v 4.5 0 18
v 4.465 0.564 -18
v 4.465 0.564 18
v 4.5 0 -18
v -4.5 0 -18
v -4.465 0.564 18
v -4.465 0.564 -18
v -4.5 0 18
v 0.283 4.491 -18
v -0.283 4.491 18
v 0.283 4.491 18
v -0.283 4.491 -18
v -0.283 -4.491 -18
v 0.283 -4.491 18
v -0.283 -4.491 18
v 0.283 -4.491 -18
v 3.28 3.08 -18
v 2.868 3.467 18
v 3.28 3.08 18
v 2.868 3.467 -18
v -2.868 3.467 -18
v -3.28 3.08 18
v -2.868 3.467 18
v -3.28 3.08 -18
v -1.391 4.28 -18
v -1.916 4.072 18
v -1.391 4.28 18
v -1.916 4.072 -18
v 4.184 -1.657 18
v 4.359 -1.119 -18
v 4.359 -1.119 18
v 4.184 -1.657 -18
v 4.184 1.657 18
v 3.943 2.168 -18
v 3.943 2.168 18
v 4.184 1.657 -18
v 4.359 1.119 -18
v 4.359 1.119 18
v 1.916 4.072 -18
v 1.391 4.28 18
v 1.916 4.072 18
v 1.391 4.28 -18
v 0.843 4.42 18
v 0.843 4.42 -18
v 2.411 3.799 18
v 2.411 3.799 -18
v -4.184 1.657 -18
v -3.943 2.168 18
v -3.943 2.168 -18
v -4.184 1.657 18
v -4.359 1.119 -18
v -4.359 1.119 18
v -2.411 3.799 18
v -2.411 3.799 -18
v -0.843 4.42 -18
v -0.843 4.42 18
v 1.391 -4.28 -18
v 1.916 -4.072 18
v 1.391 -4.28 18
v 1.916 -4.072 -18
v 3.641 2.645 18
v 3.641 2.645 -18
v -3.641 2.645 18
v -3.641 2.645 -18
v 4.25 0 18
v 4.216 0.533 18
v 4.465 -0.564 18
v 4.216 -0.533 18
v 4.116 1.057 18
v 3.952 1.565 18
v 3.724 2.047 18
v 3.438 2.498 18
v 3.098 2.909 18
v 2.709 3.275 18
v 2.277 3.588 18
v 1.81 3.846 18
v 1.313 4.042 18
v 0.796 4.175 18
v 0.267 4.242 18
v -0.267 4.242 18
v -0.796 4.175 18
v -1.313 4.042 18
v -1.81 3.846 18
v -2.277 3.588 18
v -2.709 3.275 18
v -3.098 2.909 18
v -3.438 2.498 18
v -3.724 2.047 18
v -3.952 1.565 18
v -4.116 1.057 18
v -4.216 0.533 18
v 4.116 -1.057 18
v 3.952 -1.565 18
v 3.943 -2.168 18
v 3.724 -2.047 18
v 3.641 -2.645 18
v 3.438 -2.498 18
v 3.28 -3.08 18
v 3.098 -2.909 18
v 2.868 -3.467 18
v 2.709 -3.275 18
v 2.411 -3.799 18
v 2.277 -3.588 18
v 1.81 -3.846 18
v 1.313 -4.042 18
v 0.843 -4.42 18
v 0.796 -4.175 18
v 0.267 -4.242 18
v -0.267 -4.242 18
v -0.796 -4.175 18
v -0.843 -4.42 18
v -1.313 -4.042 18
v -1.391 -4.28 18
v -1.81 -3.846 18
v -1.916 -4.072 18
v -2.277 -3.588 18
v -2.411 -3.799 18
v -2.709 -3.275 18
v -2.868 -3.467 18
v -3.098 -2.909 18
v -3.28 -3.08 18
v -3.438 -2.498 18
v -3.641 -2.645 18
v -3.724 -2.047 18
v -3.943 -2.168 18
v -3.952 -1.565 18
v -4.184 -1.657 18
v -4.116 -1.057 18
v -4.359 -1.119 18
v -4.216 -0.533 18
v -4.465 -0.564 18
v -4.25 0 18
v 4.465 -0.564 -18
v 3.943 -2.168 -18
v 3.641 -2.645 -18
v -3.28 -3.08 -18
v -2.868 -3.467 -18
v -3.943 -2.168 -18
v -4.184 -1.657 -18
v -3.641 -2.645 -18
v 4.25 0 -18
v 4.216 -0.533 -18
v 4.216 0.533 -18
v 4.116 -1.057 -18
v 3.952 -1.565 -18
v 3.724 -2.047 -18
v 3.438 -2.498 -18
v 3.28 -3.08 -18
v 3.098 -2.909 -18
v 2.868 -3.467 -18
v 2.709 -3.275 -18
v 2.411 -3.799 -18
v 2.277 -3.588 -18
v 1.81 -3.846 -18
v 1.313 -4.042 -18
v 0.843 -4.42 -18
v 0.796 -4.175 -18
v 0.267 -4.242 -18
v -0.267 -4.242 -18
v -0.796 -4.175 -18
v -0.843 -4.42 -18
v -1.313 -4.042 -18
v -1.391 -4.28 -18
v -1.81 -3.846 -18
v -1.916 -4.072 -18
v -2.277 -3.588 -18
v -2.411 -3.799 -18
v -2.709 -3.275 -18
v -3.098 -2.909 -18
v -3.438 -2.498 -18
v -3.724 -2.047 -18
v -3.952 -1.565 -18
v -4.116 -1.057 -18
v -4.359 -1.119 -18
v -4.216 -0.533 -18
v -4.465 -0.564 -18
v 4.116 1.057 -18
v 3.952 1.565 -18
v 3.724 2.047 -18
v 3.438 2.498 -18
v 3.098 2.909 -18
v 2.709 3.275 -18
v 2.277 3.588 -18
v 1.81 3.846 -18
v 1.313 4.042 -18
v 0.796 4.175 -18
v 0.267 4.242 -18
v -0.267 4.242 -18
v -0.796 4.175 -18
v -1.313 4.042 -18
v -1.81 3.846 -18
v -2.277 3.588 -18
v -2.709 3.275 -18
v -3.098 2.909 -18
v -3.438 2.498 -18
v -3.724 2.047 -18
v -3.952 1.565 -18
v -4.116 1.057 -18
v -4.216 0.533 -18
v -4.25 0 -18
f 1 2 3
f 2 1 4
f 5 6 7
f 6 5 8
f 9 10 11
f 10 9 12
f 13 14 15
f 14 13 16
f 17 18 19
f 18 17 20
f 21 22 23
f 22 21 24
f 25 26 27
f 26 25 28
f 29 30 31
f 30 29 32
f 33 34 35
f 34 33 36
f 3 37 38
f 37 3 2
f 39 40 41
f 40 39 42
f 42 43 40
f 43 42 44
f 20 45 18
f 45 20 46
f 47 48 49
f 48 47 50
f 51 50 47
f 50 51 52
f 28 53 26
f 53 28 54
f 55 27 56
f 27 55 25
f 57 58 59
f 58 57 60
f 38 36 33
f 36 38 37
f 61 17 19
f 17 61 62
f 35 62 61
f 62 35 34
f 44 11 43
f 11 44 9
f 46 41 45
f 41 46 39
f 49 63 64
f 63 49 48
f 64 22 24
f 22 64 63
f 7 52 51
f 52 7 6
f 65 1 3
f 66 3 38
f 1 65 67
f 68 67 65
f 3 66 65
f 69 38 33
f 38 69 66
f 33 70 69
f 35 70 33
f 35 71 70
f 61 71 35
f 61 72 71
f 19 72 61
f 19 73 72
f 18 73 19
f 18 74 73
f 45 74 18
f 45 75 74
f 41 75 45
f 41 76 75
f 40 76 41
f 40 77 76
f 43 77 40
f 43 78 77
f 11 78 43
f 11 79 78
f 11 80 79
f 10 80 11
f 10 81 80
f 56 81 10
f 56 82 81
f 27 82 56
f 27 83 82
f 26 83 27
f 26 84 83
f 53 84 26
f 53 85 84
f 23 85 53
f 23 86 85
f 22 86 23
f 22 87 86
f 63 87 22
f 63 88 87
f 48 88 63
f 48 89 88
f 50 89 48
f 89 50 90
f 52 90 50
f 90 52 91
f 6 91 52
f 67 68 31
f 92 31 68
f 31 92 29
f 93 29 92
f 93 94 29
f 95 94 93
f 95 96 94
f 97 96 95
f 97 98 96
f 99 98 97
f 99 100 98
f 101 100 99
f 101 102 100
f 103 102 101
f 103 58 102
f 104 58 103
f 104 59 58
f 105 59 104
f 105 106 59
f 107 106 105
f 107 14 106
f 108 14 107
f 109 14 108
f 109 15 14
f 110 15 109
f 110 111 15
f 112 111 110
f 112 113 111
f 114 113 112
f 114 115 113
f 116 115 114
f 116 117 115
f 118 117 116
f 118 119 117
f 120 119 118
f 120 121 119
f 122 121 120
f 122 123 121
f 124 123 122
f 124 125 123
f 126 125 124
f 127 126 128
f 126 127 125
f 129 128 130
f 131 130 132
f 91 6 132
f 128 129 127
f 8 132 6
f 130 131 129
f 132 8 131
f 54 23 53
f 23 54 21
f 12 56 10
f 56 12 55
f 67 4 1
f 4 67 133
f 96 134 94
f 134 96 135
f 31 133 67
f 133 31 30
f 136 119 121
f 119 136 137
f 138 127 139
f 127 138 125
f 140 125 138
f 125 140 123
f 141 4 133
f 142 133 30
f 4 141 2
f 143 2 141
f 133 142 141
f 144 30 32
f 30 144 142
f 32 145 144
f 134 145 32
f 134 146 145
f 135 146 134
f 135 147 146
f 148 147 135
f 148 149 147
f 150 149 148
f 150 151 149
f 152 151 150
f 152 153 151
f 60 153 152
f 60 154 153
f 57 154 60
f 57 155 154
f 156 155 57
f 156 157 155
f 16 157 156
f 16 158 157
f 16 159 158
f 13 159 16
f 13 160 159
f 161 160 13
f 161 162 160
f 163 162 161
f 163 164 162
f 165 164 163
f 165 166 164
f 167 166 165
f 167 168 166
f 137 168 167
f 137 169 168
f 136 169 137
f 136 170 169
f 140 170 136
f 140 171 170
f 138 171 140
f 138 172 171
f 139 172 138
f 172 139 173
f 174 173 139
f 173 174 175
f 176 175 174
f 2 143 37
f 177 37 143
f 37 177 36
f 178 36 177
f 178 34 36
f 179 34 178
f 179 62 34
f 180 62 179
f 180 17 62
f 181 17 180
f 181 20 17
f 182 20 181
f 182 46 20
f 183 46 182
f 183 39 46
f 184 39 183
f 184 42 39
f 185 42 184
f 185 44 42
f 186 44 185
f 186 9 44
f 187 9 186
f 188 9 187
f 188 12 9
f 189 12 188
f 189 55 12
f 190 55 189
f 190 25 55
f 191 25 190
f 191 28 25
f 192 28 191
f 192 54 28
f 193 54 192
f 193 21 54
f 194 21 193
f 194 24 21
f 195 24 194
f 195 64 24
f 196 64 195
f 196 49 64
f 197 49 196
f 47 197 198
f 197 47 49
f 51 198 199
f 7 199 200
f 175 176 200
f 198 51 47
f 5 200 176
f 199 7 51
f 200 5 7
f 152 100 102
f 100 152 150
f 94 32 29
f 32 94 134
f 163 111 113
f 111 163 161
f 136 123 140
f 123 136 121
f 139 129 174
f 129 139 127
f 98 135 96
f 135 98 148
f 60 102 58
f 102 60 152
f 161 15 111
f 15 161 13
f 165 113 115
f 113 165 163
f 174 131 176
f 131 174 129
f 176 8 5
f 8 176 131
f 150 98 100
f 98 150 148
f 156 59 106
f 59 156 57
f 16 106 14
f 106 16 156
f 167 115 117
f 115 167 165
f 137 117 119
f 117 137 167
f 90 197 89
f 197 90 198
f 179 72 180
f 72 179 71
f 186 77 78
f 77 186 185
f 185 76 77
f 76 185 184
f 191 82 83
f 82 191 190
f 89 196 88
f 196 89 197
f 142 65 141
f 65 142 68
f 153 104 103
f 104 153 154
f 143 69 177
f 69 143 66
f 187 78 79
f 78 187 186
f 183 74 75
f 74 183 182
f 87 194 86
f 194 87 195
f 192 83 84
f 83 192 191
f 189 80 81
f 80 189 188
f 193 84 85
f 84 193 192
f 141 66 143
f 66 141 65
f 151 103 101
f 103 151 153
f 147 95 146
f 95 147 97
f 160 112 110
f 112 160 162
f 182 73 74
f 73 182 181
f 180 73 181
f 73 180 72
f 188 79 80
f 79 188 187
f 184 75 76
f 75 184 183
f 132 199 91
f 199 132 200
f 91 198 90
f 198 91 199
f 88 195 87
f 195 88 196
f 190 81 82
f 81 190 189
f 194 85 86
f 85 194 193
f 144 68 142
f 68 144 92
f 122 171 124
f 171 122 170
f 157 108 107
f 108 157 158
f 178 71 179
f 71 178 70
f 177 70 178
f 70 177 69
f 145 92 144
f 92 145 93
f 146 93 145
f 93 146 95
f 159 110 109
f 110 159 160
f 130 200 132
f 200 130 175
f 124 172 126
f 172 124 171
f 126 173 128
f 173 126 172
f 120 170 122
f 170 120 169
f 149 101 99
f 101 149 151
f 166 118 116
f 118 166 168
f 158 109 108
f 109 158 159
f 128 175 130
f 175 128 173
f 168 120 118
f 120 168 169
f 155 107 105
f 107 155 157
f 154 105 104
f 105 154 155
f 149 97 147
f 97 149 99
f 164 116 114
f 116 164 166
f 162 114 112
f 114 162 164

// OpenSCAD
$fn = 50;


difference() {
	union() {
		translate(v = [0, 0, -18.0000000000]) {
			cylinder(h = 36, r = 4.5000000000);
		}
	}
	union() {
		translate(v = [0, 0, -100.0000000000]) {
			cylinder(h = 200, r = 4.2500000000);
		}
	}
}
